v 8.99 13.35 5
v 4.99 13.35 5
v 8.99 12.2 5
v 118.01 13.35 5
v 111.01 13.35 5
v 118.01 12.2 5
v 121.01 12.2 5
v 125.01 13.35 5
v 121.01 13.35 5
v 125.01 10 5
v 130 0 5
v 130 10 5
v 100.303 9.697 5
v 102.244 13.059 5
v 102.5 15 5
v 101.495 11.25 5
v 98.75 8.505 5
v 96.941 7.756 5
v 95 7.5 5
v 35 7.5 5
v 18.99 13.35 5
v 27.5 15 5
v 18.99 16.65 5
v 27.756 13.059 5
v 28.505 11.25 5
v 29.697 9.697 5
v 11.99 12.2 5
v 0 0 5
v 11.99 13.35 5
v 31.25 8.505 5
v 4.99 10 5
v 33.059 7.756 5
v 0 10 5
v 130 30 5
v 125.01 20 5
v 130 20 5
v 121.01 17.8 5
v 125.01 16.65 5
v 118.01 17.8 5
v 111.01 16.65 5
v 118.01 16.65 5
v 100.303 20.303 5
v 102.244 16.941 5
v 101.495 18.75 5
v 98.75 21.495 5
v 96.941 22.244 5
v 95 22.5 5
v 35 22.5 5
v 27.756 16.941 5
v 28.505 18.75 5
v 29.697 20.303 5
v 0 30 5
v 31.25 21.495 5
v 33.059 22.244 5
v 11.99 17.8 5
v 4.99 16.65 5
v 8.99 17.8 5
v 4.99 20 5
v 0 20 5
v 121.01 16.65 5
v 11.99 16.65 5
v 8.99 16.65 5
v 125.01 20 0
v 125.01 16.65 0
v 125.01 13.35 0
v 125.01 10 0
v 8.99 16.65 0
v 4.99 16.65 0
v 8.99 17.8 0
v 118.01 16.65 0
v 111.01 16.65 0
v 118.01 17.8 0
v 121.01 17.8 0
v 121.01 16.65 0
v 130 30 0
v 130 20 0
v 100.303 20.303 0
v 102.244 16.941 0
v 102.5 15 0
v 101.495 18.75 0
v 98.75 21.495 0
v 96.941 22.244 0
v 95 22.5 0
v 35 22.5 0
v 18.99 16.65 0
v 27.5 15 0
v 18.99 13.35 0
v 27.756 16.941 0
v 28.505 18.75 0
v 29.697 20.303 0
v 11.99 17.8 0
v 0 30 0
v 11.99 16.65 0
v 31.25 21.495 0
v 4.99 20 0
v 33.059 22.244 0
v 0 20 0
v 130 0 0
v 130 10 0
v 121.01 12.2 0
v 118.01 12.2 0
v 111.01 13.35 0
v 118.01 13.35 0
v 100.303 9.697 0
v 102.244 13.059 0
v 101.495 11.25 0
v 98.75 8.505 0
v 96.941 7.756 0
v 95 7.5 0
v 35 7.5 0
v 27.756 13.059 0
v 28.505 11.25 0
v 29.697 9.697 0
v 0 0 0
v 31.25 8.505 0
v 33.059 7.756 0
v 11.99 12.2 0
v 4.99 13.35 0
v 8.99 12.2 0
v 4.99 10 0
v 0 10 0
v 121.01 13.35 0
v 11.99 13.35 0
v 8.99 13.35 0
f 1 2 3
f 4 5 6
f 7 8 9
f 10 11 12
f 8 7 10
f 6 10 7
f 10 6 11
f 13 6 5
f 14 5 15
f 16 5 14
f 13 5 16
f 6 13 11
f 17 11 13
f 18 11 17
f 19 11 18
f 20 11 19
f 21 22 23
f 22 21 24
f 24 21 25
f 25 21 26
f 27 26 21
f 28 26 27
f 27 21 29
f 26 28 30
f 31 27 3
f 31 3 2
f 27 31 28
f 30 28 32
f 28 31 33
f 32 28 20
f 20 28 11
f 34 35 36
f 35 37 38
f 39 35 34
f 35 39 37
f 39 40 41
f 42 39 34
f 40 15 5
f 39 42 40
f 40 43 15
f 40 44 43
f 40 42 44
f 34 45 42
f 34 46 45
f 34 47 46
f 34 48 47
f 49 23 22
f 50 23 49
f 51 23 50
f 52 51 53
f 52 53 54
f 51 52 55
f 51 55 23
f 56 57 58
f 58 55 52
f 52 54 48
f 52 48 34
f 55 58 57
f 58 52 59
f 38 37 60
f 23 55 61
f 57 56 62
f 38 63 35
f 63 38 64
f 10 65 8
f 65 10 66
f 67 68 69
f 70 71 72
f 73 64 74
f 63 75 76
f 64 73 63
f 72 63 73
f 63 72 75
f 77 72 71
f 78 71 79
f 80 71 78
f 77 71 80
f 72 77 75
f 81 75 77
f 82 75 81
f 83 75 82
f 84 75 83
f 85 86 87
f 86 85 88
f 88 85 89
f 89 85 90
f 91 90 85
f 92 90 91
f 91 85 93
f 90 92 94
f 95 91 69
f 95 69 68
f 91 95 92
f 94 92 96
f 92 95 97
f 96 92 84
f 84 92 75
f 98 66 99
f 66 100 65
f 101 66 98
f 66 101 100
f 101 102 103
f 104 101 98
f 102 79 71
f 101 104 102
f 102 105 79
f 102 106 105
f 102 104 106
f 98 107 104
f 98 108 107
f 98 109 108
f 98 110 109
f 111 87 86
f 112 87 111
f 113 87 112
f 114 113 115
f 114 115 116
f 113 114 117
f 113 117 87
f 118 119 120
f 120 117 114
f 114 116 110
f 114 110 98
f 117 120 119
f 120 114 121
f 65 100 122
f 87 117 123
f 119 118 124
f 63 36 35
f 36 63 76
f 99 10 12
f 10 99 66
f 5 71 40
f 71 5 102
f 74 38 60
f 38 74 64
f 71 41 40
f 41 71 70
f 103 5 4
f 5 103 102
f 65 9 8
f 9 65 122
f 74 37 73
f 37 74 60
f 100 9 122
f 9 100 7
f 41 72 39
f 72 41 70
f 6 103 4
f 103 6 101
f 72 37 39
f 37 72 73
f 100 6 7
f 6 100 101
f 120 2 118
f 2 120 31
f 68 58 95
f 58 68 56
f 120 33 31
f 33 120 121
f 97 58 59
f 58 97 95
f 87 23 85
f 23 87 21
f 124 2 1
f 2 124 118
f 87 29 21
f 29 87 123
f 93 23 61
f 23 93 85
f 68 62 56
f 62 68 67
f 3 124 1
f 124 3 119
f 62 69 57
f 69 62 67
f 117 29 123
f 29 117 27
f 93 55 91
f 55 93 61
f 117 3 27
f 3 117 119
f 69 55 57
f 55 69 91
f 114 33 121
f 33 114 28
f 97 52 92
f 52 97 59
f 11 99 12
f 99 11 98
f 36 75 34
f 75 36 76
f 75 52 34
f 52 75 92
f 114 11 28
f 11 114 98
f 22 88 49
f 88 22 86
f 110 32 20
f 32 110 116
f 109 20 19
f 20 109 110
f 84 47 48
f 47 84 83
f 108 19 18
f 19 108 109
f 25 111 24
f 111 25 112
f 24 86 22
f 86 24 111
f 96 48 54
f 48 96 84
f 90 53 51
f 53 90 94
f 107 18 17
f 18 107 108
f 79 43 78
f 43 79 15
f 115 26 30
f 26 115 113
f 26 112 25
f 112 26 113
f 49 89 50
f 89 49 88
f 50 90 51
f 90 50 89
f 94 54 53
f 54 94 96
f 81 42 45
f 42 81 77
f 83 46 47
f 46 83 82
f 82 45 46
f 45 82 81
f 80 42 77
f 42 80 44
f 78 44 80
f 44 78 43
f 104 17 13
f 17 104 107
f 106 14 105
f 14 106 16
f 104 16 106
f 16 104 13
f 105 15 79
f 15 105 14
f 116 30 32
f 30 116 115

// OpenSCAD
/* [Beam] */

// How wide should the beam be?
beamWidth = 130;

// How large should the center cutout be (in %/100)?
cutoutPercentage = 0.8; // [0:1]

/* [Hidden] */

availableSpace = (beamWidth - 55) * cutoutPercentage;
cutoutOffset = (beamWidth - 55 - availableSpace) / 2 + (55/2);

module beamBody() {
    difference() {
        cube([beamWidth, 30, 5]);
        translate([0 - 0.01, 15, 0]) screwAndNutCutout();
        translate([beamWidth + 0.01, 15, 0]) rotate([0, 0, 180]) screwAndNutCutout();    
        translate([cutoutOffset, 15, 0]) centerCutout();
    }
}

module screwAndNutCutout() {
    translate([0, -5, 0]) union() {
        cube([5, 10, 5]);
        translate([5, 5 - 3.3/2, 0]) cube([14, 3.3, 5]);
        translate([9, 5 - 5.6/2, 0]) cube([3, 5.6, 5]);
    }
}

module centerCutout() {
    if (cutoutPercentage > 0) {        
        hull() {
            cylinder(d = 15, h = 5);
            translate([availableSpace, 0, 0]) cylinder(d = 15, h = 5);
        }
    }
}

beamBody();
